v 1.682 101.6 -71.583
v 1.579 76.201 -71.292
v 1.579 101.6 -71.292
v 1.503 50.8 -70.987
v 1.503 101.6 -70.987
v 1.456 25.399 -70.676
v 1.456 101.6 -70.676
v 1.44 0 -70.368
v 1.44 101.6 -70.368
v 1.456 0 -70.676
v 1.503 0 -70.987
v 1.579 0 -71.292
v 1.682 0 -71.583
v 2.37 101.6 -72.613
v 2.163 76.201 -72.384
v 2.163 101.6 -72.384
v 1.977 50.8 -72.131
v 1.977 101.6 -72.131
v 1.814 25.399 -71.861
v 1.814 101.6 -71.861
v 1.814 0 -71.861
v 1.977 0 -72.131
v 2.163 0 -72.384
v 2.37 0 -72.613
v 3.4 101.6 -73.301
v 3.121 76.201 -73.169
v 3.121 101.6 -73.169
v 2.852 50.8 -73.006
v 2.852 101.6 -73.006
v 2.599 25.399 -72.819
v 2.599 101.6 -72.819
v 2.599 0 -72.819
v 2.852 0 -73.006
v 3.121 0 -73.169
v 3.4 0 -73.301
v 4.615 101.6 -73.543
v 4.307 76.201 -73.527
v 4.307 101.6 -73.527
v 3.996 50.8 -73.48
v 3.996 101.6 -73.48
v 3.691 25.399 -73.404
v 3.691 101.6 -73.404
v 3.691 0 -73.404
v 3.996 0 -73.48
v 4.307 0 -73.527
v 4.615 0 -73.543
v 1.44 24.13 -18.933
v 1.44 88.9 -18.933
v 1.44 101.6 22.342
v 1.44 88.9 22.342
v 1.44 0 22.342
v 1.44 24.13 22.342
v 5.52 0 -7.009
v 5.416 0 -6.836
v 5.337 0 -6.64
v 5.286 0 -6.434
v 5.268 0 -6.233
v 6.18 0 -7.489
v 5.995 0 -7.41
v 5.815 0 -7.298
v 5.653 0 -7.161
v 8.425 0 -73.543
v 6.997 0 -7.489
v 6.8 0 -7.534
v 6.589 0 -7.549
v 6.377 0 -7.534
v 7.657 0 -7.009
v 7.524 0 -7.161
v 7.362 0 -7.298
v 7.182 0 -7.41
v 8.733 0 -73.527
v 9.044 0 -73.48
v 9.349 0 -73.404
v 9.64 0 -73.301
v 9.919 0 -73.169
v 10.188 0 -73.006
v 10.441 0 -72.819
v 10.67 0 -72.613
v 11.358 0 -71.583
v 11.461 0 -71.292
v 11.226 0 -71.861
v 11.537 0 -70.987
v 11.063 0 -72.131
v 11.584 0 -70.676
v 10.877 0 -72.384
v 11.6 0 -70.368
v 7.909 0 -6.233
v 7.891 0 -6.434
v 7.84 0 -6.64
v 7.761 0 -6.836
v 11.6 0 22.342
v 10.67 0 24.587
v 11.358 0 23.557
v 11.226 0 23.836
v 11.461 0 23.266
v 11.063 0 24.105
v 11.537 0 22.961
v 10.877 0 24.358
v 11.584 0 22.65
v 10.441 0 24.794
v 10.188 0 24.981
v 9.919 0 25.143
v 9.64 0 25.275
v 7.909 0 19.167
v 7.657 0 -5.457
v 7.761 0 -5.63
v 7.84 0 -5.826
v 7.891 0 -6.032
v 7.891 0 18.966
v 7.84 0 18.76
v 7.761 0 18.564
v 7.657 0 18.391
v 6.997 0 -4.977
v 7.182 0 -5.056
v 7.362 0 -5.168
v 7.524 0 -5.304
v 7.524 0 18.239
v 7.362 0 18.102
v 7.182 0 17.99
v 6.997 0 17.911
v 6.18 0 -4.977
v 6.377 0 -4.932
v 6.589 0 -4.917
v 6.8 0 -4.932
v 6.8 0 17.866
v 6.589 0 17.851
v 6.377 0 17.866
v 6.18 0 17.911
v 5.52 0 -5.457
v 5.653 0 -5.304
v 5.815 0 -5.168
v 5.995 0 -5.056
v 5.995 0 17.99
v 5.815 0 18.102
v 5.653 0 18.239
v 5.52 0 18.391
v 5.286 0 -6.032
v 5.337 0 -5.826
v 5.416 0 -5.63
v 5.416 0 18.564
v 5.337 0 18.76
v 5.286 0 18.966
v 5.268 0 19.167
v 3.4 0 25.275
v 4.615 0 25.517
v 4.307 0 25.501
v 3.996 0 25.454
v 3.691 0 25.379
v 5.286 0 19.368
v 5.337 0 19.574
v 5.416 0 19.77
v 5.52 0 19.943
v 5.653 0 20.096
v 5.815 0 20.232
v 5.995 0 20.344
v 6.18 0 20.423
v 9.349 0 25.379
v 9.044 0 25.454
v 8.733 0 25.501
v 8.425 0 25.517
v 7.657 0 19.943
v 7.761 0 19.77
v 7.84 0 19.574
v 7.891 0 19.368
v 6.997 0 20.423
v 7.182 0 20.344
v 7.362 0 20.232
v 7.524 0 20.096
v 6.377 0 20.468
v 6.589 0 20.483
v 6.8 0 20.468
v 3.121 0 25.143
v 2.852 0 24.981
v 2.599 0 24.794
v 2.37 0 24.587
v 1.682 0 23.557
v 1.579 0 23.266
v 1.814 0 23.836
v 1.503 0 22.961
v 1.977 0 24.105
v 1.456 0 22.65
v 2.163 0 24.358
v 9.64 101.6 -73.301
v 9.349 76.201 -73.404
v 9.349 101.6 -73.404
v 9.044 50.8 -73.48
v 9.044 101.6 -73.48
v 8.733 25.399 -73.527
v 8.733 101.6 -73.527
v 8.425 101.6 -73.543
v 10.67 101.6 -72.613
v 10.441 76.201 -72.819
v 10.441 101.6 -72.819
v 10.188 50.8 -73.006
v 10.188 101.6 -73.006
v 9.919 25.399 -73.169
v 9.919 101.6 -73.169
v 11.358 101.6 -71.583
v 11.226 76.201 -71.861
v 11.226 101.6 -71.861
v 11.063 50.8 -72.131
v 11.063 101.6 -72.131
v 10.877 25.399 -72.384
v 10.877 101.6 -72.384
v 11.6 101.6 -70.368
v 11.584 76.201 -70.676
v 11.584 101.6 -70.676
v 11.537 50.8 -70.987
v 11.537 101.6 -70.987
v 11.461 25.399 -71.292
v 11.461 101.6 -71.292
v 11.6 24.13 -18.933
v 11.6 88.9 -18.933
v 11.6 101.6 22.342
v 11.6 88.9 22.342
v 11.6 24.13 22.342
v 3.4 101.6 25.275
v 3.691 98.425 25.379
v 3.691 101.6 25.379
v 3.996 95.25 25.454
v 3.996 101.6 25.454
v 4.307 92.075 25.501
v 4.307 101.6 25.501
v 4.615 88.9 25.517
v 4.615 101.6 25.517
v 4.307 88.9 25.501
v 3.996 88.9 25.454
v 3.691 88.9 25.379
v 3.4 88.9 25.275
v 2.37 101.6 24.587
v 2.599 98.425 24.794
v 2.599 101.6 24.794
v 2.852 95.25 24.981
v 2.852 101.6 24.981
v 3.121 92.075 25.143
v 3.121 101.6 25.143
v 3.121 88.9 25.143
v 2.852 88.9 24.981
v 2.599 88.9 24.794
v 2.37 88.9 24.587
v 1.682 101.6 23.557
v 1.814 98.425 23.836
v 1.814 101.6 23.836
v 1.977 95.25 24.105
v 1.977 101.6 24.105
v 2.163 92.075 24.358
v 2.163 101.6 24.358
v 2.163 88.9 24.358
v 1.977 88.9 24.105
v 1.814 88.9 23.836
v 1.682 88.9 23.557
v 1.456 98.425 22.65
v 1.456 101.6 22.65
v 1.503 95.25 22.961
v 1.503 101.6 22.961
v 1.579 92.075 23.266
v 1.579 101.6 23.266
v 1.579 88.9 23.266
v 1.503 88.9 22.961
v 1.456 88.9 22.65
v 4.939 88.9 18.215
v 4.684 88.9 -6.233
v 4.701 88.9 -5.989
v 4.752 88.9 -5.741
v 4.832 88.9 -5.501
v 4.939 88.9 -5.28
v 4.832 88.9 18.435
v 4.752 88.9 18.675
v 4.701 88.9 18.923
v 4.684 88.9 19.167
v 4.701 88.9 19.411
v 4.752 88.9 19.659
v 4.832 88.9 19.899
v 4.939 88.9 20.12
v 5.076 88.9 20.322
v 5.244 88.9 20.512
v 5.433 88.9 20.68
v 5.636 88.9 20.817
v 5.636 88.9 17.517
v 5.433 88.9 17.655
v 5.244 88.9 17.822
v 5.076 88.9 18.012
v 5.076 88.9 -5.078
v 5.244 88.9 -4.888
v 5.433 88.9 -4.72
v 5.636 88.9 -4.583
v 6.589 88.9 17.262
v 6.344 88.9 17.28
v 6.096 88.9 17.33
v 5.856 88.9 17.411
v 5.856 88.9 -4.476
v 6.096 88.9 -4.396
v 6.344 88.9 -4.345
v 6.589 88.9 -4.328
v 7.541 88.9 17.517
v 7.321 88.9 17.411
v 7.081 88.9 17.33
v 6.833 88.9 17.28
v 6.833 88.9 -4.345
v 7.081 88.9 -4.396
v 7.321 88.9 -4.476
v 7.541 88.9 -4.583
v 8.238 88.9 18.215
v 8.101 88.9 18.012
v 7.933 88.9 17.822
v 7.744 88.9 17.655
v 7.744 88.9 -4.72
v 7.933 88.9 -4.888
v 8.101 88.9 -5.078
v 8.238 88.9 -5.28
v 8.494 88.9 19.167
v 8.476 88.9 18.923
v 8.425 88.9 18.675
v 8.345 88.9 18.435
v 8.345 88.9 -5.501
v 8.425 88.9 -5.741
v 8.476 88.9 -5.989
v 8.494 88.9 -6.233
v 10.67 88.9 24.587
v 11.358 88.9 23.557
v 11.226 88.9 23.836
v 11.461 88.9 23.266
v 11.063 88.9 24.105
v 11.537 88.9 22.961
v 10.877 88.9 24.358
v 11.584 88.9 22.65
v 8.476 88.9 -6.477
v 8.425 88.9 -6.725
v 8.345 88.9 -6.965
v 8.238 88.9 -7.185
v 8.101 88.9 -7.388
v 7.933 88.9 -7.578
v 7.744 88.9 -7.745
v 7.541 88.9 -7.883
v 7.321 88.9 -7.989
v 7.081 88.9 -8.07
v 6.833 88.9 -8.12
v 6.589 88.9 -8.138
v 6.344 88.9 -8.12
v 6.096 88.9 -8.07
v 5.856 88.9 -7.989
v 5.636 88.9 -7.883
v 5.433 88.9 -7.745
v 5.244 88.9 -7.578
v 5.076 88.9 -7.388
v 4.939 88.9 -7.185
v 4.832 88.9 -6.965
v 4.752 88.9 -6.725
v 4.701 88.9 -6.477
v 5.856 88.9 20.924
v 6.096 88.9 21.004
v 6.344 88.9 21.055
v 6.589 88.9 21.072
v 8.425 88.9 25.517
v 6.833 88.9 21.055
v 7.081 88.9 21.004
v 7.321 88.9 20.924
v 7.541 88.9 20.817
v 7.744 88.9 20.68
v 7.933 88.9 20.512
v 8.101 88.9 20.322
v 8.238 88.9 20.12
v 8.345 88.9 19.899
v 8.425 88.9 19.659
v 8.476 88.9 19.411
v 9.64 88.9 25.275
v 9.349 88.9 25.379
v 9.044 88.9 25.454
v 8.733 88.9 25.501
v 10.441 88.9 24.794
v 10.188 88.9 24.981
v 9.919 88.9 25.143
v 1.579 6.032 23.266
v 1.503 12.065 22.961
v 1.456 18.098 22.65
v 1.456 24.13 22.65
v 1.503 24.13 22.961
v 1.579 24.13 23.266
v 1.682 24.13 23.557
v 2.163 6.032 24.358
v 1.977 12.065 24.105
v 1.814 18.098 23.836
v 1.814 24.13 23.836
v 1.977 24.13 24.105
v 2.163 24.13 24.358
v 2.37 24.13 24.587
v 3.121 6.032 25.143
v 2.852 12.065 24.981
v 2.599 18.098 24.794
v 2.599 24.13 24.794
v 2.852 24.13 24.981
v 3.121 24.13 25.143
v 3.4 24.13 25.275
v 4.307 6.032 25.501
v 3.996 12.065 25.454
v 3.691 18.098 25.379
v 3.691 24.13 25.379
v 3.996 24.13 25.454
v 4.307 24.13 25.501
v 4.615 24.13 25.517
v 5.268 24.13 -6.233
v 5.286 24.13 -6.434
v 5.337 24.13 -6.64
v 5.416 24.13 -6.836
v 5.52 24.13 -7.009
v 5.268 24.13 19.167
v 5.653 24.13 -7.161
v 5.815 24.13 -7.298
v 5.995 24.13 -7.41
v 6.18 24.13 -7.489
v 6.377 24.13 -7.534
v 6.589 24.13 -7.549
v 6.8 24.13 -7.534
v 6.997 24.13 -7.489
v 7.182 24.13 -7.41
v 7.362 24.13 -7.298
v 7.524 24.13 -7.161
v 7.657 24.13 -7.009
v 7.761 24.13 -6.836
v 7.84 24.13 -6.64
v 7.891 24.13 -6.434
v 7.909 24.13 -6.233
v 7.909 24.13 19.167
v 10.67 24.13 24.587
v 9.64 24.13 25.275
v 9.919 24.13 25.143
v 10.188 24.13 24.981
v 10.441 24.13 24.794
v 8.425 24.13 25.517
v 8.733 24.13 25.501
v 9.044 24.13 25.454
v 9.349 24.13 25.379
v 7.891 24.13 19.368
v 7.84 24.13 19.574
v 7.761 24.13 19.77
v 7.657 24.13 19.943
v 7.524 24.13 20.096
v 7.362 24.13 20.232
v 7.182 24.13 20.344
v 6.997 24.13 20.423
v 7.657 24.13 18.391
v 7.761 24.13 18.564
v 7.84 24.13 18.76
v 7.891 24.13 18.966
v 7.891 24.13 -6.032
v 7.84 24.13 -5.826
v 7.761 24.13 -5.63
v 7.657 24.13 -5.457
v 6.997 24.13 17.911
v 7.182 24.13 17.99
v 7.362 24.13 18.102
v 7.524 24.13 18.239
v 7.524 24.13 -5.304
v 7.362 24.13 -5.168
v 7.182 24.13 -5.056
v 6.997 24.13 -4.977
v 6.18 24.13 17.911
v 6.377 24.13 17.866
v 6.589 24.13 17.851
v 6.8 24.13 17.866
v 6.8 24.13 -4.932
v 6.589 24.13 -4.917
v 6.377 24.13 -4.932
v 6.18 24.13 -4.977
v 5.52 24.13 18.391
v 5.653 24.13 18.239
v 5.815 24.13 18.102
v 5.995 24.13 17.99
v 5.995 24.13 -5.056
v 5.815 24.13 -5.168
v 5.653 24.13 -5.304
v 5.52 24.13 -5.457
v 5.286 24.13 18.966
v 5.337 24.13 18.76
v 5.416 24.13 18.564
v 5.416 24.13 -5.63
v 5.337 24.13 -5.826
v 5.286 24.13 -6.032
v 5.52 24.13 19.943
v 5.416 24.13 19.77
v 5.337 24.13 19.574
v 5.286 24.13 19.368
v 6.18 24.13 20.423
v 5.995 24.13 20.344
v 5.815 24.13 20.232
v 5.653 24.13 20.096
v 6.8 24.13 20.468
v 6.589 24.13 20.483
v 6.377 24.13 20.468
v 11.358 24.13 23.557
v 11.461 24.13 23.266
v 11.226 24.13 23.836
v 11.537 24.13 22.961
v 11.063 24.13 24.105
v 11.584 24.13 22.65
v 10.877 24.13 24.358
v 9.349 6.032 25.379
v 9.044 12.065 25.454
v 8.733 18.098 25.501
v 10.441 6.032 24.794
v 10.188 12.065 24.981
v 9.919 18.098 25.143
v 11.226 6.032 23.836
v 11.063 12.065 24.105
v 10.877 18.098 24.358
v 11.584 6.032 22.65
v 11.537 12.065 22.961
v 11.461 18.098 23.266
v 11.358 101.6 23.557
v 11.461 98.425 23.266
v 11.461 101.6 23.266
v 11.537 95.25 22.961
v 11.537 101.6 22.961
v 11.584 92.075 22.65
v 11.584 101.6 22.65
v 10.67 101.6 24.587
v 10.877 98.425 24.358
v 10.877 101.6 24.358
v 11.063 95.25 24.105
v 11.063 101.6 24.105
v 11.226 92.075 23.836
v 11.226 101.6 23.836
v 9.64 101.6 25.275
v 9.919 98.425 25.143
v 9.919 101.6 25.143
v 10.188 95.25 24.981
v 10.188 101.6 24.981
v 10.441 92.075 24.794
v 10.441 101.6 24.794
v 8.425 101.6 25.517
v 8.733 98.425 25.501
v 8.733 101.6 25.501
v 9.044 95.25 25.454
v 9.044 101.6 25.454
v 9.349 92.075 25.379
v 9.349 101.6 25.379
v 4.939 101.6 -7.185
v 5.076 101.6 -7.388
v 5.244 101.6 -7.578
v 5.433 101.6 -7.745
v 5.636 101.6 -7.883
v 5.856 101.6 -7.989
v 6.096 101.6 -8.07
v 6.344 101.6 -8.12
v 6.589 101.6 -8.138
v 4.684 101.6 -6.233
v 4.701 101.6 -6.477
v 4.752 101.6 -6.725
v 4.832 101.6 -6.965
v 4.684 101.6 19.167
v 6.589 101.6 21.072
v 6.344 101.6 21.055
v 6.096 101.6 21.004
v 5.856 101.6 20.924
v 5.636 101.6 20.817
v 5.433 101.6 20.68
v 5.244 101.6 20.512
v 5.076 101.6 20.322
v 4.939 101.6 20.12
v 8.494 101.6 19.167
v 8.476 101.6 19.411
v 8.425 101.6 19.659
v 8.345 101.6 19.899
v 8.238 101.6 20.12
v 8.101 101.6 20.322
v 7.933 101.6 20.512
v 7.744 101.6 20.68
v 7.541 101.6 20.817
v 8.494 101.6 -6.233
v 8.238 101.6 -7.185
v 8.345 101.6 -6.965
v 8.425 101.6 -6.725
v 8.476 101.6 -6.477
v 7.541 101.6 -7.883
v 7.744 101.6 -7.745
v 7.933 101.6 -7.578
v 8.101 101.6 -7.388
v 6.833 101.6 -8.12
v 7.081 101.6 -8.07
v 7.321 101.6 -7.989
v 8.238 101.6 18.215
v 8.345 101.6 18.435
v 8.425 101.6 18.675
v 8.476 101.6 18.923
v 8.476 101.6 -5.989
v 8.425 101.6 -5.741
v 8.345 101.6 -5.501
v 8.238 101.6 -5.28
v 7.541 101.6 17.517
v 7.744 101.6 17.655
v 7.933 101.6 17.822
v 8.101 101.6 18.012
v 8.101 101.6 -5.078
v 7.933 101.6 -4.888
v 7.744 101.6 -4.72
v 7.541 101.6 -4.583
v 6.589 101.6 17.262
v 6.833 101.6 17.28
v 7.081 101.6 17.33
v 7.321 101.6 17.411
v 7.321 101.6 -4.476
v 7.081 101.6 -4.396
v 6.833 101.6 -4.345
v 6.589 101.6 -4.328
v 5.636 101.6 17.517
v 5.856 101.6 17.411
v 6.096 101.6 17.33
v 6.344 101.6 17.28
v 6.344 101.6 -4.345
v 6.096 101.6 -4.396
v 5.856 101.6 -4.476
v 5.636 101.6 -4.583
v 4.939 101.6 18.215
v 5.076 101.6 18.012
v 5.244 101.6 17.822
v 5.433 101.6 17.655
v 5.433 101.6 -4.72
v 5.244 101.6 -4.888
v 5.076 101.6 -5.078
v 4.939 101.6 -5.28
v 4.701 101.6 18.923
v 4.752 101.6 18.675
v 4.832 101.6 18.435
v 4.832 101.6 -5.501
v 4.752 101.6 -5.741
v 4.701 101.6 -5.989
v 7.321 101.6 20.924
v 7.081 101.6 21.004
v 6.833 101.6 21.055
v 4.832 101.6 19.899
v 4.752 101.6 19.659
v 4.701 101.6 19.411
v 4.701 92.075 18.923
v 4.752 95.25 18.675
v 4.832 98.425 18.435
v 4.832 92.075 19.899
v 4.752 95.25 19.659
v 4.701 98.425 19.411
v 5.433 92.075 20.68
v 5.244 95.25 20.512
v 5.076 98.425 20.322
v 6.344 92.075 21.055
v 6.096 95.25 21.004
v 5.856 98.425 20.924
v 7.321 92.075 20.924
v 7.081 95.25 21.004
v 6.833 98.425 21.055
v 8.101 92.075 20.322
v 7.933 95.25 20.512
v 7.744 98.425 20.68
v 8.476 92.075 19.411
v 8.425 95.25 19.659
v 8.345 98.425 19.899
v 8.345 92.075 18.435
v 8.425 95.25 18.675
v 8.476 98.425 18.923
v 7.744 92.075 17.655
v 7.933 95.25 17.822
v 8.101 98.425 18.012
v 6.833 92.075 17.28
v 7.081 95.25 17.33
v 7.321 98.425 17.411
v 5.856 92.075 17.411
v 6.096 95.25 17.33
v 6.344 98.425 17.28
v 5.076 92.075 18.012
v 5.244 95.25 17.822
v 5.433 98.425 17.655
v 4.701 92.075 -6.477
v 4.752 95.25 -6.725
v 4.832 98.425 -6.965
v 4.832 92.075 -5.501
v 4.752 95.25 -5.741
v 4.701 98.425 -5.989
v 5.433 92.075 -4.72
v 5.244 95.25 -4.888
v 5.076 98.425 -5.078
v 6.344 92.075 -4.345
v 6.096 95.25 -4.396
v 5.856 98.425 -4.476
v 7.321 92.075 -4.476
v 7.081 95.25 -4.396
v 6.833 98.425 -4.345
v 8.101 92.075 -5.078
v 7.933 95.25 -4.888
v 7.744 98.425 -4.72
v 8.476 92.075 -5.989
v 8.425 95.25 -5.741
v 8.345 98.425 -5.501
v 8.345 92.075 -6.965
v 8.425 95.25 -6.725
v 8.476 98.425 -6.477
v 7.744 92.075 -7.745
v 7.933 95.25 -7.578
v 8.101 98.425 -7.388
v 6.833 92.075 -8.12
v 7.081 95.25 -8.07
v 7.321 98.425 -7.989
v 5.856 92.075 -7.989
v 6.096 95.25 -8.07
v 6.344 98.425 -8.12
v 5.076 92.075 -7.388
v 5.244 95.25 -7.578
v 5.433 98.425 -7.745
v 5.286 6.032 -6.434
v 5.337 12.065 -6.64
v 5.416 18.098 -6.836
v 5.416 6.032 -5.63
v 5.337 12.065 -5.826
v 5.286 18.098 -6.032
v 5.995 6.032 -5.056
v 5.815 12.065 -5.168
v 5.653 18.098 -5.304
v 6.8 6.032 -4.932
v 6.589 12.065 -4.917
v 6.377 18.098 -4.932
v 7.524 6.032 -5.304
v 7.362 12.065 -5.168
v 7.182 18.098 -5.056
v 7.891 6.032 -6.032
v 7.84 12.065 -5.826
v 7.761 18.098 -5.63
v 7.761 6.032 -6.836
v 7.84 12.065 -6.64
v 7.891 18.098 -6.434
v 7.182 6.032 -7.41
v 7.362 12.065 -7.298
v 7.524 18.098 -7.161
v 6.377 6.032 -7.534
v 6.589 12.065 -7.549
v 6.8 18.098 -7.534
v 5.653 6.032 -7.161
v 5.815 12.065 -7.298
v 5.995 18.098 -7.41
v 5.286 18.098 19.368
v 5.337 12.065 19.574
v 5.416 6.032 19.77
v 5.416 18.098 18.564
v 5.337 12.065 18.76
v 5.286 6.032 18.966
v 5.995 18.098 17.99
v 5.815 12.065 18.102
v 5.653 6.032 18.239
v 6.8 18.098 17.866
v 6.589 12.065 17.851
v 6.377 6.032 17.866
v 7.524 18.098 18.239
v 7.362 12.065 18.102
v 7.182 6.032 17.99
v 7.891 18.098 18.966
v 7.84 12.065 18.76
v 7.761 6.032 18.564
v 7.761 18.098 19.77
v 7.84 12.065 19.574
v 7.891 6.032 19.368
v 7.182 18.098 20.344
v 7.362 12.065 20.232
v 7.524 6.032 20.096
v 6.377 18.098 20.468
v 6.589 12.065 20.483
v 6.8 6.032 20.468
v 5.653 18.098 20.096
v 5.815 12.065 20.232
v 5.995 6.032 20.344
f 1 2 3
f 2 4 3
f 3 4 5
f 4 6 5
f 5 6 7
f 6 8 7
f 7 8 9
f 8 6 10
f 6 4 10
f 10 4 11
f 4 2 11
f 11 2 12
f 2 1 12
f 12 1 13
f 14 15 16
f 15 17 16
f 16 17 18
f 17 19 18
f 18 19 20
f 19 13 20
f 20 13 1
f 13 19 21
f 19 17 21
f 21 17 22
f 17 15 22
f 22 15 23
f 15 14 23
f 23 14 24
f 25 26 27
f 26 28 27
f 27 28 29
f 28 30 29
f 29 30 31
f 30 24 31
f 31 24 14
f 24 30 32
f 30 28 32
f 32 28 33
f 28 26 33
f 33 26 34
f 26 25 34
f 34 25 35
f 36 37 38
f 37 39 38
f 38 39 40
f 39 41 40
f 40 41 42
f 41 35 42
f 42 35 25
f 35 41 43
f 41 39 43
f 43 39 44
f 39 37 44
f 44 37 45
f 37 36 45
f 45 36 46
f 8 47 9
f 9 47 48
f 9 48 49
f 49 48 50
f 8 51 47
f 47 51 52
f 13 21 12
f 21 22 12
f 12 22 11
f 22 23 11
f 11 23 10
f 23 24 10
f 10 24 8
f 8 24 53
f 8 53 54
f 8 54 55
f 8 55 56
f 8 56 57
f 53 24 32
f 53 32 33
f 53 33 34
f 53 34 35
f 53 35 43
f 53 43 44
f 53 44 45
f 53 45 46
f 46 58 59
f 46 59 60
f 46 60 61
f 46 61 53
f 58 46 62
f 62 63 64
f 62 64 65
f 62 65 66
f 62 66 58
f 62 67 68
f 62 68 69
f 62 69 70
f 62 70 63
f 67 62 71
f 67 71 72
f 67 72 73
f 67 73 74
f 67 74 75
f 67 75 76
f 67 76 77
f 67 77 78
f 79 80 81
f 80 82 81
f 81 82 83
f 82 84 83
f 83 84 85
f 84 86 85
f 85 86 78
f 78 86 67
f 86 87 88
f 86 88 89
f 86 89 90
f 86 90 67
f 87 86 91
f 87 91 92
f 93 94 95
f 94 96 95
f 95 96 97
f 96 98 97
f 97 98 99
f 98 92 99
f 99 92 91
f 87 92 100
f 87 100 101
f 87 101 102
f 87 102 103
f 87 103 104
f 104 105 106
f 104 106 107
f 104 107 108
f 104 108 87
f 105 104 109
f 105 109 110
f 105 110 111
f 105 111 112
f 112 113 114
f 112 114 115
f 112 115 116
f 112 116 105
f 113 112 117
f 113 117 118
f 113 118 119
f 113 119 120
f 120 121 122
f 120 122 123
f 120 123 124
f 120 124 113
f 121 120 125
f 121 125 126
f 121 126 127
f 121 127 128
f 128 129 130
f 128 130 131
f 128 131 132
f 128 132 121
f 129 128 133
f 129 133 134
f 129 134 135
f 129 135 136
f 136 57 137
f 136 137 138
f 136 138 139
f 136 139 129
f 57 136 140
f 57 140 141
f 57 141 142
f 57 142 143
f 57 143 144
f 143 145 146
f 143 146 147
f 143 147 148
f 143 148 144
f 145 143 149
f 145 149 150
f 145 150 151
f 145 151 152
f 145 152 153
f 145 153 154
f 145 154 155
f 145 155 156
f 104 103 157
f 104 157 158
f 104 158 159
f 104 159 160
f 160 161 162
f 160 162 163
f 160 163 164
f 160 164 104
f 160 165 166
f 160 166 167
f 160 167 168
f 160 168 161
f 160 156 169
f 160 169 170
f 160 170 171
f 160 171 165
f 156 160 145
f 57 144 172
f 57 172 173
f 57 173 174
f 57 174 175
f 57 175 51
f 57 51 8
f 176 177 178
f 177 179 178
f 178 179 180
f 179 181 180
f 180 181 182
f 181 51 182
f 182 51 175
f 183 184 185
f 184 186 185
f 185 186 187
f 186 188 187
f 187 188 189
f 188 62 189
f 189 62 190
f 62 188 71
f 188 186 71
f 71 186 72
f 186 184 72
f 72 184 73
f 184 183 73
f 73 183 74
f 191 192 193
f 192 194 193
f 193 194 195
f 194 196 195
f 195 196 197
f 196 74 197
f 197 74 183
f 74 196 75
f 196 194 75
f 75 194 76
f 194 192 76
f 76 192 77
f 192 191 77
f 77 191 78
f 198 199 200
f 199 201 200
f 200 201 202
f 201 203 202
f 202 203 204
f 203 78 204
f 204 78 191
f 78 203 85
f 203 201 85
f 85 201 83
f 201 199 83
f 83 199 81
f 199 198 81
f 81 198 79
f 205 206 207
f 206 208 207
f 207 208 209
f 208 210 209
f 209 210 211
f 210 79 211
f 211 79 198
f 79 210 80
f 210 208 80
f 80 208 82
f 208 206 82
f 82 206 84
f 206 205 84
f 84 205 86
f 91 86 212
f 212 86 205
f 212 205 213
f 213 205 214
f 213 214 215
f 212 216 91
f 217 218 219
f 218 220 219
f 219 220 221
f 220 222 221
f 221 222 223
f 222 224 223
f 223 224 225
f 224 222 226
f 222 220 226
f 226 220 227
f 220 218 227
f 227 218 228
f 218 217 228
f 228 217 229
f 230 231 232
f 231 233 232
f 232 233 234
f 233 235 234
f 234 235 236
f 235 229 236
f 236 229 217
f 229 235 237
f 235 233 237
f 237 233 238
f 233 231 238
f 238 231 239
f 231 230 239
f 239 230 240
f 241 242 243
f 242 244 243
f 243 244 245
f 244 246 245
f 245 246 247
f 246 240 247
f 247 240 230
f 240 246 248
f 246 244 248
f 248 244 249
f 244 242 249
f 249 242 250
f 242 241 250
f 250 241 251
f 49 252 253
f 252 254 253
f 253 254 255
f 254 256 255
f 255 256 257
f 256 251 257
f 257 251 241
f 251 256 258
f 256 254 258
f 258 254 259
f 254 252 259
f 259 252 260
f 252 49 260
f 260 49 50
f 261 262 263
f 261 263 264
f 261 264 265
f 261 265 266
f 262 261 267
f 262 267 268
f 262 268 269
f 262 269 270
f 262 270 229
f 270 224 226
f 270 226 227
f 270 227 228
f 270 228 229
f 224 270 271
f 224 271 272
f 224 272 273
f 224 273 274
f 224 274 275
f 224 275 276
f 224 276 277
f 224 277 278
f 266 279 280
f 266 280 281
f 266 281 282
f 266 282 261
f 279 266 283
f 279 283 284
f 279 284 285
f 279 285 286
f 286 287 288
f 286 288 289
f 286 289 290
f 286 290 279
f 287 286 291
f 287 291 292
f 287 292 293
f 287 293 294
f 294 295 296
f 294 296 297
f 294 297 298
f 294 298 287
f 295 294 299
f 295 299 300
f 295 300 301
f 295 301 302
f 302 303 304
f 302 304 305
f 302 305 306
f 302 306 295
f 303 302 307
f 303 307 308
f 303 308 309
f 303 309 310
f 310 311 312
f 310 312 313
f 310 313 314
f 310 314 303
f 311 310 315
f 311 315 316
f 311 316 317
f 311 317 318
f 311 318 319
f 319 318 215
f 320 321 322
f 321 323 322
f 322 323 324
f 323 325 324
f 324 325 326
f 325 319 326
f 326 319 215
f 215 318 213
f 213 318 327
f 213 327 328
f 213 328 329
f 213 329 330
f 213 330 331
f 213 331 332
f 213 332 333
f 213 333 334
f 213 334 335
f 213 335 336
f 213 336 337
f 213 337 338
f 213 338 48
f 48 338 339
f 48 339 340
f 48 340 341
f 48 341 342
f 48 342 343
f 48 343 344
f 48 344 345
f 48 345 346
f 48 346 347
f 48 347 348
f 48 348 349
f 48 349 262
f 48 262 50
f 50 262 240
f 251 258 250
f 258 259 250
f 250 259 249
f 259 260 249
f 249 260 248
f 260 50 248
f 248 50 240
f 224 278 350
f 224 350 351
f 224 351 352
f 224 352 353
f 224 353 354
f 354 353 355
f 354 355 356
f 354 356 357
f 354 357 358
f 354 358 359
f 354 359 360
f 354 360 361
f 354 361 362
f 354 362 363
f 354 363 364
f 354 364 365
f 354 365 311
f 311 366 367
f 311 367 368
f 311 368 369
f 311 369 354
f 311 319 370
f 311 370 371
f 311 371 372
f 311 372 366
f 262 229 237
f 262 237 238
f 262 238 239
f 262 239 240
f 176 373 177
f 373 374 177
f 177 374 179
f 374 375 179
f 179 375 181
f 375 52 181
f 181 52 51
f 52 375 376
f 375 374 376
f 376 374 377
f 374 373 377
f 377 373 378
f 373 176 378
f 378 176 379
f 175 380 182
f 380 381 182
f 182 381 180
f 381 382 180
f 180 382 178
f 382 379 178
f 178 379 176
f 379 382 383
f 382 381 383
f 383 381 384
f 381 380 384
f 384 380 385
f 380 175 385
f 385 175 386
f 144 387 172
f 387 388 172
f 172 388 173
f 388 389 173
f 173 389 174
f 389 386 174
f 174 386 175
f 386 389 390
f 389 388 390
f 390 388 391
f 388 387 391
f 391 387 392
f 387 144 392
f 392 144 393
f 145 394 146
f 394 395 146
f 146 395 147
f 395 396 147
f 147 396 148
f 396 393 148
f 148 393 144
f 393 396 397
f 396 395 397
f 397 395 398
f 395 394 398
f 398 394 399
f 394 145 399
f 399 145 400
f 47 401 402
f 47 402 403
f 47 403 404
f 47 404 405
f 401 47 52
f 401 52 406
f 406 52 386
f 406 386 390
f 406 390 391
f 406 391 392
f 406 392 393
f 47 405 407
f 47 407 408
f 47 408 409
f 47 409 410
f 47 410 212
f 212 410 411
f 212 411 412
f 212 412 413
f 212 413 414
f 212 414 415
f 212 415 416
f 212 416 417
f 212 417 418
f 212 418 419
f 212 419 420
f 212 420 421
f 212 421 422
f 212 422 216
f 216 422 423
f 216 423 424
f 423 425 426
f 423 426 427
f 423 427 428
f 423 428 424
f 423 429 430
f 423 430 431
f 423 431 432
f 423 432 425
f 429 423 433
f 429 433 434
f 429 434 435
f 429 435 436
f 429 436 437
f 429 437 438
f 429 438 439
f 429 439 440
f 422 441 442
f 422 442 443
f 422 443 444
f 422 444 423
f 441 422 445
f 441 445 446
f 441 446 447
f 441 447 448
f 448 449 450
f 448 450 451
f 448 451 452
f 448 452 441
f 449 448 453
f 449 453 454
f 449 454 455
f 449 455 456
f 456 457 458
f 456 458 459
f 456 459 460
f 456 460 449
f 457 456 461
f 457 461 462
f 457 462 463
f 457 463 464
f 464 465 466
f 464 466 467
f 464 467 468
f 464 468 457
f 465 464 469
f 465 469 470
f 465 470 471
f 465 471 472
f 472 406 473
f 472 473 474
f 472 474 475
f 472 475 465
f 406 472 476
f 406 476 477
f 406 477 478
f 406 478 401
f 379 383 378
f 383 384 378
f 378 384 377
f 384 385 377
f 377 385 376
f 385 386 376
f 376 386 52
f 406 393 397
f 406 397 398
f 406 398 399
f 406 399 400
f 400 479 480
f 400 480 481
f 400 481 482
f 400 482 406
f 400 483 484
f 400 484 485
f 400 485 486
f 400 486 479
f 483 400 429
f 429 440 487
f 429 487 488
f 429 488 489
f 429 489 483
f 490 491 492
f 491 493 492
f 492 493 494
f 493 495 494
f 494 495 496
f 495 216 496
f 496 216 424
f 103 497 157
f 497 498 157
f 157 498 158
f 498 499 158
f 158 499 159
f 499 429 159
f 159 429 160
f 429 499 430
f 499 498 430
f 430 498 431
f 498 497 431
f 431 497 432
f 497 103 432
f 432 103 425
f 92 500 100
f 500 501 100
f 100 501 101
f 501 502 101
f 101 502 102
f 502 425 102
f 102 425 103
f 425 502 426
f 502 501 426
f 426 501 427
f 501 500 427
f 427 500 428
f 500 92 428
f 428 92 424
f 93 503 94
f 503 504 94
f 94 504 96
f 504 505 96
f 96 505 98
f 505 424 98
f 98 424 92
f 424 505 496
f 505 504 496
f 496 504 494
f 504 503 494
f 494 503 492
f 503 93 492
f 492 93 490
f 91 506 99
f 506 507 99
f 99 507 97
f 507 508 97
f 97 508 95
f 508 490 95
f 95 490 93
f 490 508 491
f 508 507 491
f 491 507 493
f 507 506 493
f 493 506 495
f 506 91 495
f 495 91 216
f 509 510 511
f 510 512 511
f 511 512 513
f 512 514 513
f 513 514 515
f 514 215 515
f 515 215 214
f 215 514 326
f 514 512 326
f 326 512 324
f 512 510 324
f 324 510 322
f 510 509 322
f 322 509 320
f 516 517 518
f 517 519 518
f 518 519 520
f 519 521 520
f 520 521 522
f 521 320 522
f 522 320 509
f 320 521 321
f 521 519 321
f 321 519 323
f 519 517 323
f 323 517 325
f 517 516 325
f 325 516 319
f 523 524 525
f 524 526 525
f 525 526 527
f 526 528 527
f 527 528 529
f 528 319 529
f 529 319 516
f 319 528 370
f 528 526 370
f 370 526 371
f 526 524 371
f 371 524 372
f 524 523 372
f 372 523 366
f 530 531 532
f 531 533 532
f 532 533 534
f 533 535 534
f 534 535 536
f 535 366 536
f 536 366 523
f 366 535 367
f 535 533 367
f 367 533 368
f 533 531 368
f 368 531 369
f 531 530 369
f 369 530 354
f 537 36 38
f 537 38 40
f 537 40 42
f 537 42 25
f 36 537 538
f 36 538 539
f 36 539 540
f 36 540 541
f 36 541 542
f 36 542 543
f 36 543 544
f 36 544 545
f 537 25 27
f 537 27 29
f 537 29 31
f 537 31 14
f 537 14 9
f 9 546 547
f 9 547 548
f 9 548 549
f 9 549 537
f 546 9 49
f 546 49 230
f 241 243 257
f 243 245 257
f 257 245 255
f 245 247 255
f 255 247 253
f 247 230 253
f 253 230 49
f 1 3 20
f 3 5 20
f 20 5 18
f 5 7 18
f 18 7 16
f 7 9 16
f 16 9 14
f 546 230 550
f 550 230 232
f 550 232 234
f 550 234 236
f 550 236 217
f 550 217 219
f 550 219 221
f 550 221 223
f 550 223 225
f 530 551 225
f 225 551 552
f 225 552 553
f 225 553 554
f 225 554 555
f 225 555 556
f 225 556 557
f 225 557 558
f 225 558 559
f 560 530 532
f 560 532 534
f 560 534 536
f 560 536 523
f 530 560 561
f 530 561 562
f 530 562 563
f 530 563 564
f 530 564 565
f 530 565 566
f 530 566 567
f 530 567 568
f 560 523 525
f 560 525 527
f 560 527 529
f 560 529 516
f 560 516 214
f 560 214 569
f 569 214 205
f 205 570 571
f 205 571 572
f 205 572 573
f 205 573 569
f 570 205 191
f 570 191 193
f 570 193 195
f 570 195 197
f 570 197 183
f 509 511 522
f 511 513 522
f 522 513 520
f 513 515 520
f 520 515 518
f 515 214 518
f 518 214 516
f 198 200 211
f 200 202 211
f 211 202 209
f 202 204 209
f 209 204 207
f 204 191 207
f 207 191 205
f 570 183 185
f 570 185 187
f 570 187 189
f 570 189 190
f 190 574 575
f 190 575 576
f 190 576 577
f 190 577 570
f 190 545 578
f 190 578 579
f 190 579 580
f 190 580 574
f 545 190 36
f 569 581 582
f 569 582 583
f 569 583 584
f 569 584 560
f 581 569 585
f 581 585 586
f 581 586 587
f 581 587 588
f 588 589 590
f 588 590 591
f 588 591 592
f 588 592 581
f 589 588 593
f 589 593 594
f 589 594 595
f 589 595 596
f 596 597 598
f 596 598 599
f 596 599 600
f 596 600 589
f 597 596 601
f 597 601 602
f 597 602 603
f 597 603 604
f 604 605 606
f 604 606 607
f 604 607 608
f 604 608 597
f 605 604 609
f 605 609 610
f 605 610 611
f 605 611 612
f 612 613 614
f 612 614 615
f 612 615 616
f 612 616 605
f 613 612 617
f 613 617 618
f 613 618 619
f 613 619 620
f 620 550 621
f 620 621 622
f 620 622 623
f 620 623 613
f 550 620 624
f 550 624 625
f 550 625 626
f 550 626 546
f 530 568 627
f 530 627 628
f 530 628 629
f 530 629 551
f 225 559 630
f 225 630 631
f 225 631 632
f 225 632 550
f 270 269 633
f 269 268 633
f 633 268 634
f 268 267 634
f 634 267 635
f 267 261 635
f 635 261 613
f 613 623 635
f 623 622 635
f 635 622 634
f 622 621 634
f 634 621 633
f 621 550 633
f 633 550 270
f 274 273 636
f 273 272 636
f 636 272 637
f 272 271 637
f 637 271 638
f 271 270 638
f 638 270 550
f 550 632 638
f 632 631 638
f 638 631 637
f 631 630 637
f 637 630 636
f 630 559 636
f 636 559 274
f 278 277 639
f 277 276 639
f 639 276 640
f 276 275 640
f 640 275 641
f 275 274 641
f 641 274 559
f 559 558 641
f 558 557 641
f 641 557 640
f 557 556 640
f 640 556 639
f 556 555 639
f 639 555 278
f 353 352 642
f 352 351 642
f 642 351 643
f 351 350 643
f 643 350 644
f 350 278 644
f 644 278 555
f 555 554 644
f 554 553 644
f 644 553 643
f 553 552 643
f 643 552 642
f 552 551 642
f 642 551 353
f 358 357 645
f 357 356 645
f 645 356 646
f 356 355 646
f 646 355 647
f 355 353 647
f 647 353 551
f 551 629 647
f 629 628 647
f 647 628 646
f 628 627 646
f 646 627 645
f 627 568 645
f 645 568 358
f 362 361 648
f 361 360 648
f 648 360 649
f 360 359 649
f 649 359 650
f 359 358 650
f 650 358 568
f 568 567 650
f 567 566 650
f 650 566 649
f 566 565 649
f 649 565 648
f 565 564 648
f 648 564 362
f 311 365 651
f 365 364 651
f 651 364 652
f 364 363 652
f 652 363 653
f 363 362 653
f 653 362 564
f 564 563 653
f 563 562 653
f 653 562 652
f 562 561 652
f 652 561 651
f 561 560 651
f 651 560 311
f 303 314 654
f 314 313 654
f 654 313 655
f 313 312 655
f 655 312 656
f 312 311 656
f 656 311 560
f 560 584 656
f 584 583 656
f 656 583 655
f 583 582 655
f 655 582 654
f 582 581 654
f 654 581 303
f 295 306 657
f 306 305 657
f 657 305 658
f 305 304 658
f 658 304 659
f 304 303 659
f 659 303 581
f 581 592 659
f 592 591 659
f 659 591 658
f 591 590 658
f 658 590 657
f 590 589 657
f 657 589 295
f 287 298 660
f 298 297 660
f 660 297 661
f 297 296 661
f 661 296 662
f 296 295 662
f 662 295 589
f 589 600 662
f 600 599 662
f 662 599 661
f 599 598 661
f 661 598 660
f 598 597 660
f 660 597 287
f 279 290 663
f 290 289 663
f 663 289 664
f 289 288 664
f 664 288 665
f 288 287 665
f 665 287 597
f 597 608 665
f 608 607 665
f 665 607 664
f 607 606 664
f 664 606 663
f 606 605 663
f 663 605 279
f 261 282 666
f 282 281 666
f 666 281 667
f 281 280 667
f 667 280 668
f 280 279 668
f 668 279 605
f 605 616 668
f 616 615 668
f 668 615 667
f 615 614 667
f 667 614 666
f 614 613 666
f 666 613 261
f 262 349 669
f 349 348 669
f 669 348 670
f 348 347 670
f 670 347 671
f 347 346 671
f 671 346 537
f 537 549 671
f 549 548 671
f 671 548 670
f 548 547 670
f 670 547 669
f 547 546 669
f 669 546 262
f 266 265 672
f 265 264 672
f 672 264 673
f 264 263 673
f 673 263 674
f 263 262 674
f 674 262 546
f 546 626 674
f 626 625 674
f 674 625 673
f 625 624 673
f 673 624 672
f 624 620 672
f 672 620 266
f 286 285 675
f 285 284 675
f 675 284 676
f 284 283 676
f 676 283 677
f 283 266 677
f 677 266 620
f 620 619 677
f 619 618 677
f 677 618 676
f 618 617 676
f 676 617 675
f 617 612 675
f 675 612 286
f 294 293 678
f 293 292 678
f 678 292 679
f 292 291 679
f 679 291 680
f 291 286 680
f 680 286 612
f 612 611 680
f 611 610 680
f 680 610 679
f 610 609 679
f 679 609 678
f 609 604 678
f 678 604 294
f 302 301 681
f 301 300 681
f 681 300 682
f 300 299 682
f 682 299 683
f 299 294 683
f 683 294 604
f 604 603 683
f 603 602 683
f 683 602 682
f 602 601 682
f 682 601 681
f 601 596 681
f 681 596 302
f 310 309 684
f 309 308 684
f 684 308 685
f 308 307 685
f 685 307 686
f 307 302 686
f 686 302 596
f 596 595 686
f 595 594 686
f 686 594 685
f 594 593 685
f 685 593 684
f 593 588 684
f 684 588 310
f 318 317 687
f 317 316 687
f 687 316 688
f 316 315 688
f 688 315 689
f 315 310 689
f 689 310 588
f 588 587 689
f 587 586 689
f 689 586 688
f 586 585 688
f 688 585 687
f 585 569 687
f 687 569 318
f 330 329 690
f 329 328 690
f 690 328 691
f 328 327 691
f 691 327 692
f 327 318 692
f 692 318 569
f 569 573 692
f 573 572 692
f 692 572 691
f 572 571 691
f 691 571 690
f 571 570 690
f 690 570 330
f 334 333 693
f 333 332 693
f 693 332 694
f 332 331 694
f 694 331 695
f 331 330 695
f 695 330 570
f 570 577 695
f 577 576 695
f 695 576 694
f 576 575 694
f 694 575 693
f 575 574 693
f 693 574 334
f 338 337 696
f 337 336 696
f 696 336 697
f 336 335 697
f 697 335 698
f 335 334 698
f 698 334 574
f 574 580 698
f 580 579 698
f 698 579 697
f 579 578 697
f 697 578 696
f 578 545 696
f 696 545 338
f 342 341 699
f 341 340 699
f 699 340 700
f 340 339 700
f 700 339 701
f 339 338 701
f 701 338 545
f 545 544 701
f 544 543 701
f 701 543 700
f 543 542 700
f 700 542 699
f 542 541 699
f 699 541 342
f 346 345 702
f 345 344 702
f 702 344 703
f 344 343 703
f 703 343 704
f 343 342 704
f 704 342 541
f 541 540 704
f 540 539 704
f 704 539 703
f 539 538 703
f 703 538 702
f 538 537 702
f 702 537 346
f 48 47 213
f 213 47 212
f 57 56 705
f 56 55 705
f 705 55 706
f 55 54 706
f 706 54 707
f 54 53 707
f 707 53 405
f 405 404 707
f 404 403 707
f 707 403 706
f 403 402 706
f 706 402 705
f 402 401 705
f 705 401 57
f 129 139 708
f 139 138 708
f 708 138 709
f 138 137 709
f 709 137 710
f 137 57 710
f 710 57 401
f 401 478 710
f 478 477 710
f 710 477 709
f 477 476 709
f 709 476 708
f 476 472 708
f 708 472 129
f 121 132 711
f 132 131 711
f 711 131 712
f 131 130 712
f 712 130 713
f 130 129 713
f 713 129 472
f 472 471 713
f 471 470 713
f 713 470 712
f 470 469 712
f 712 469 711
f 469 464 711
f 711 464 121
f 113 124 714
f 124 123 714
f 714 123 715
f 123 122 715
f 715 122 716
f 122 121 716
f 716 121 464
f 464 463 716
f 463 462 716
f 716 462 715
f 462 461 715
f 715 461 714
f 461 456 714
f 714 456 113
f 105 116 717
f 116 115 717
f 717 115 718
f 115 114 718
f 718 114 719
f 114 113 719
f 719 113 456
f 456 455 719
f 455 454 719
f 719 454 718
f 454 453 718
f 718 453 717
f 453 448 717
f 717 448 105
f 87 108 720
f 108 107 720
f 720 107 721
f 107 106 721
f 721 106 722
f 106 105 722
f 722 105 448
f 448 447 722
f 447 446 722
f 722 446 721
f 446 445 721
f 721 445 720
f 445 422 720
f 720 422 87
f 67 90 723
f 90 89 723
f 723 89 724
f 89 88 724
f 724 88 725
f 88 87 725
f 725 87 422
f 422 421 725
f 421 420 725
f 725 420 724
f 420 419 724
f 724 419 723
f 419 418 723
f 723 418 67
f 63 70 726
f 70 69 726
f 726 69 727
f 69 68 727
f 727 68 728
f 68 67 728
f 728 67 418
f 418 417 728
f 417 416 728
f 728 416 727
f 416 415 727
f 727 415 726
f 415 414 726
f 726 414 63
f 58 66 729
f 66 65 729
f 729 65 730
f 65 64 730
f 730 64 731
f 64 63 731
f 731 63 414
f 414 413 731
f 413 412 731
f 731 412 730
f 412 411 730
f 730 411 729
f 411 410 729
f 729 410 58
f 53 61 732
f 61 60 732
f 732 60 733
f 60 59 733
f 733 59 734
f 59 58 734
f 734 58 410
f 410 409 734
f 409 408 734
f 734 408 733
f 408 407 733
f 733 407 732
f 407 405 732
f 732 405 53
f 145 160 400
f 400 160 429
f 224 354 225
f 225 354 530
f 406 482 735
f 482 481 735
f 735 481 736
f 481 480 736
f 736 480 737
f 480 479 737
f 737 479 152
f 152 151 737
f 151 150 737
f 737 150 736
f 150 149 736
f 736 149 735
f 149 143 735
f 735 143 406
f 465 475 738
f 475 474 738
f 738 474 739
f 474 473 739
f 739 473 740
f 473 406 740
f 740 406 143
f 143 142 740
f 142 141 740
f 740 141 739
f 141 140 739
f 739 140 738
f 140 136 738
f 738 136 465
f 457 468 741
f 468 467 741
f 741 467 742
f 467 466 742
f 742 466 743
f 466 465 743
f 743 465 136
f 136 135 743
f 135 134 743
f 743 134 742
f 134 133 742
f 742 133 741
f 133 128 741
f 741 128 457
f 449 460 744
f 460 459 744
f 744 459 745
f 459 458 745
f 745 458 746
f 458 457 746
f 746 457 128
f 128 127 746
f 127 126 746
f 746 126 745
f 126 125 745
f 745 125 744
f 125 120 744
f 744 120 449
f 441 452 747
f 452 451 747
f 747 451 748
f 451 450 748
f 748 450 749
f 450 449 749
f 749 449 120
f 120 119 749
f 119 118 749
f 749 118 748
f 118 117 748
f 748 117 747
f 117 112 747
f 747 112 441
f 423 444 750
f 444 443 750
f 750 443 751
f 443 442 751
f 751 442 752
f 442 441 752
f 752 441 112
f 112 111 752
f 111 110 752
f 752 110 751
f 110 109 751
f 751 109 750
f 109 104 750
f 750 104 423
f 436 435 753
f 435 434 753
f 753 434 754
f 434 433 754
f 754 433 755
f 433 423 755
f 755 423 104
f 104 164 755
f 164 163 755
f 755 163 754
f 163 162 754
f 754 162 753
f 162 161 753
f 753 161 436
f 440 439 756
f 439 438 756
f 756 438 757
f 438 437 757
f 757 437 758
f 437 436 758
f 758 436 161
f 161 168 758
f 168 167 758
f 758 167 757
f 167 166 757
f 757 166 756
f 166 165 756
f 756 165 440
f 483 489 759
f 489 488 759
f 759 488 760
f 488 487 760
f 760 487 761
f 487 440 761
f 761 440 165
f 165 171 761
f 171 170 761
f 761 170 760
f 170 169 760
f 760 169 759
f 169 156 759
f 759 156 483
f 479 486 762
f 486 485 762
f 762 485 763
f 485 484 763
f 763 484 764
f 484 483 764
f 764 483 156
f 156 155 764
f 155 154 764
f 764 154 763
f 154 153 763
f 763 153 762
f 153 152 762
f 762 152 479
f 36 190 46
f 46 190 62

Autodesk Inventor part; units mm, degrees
ref_plane "YZ Plane" through (0, 0, 0) normal (1, 0, 0) x (0, 1, 0)
ref_plane "XZ Plane" through (0, 0, 0) normal (0, 1, 0) x (-1, 0, 0)
ref_plane "XY Plane" through (0, 0, 0) normal (0, 0, 1) x (1, 0, 0)
sketch "Sketch1" plane through (0, 0, 0) normal (0, 1, 0) x (-1, 0, 0)
  line L0 (-1.44, 25.5171) -> (-11.6, 25.5171)
  line L1 (-11.6, 25.5171) -> (-11.6, -73.5429)
  line L2 (-11.6, -73.5429) -> (-1.44, -73.5429)
  line L3 (-1.44, -73.5429) -> (-1.44, 25.5171)
  point P0 (0, 0)
  dimension "d0" = 99.06
  dimension "d1" = 10.16
extrude "Extrusion1" add sketch "Sketch1" along normal blind 101.6
sketch "Sketch2" plane through (0, 101.6, 0) normal (0, 1, 0) x (1, 0, 0)
  line L0 (1.44, -25.5171) -> (11.6, -25.5171) projected
  point P0 (0, 0)
  point P1 (6.5886, -19.1671)
  point P2 (6.5886, 6.2329)
  dimension "d4" = 0
  dimension "d5" = 6.35
  dimension "d6" = 25.4
hole "Hole1" at (6.5886, 101.6, 19.1671) at (6.5886, 101.6, -6.2329) direction (0, -1, 0) diameter 2.6416 end through all thread size "6-32 UNC" class "2B" standard "ANSI Unified Screw Threads"
sketch "Sketch3" plane through (11.6, 0, 25.5171) normal (1, 0, 0) x (0, 0, -1)
  line L0 (12.7, 88.9) -> (-33.0221, 88.9)
  line L1 (-33.0221, 88.9) -> (-33.0221, 24.13)
  line L2 (-33.0221, 24.13) -> (12.7, 24.13)
  line L3 (12.7, 24.13) -> (12.7, 88.9)
  line L4 (0, 101.6) -> (99.06, 101.6) projected
  line L5 (0, 0) -> (0, 101.6) projected
  point P0 (25.5171, 0)
  dimension "d15" = 12.7
  dimension "d16" = 64.77
  dimension "d19" = 12.7
extrude "Extrusion2" cut sketch "Sketch3" against normal blind 25.4
sketch "Sketch4" plane through (11.6, 0, 25.5171) normal (1, 0, 0) x (0, 0, -1)
  line L0 (12.7, 24.13) -> (44.45, 24.13)
  line L1 (44.45, 24.13) -> (44.45, 88.9)
  line L2 (44.45, 88.9) -> (12.7, 88.9)
  line L3 (12.7, 88.9) -> (12.7, 24.13)
  line L4 (0, 88.9) -> (12.7, 88.9) projected
  line L5 (12.7, 24.13) -> (0, 24.13) projected
  line L6 (12.7, 88.9) -> (12.7, 24.13) projected
  point P0 (25.5171, 0)
  dimension "d20" = 31.75
  dimension "d21" = 0
  dimension "d22" = 0
  dimension "d23" = 0
extrude "Extrusion3" cut sketch "Sketch4" against normal blind 25.4
sketch "Sketch5" plane through (0, 101.6, 0) normal (0, 1, 0) x (1, 0, 0)
  circle A0 centre (6.5886, 6.2329) radius 1.3208 projected
  circle A1 centre (6.5886, -19.1671) radius 1.3208 projected
  point P0 (0, 0)
hole "Hole2" at (6.5886, 101.6, 19.1671) at (6.5886, 101.6, -6.2329) direction (0, -1, 0) diameter 3.81 depth 15.24 tip angle 118.188 clearance for "Flat Head Machine Screw (82)" size "#6" standard "Ansi Unified Screw Threads"
fillet "Fillet1" radius 3.175 1 edges at (11.6, 95.25, 25.5171)
fillet "Fillet2" radius 3.175 5 edges at (11.6, 12.065, 25.5171) (1.44, 12.065, 25.5171) (1.44, 95.25, 25.5171) (11.6, 50.8, -73.5429) (1.44, 50.8, -73.5429)
properties part number "GripperPlate"
